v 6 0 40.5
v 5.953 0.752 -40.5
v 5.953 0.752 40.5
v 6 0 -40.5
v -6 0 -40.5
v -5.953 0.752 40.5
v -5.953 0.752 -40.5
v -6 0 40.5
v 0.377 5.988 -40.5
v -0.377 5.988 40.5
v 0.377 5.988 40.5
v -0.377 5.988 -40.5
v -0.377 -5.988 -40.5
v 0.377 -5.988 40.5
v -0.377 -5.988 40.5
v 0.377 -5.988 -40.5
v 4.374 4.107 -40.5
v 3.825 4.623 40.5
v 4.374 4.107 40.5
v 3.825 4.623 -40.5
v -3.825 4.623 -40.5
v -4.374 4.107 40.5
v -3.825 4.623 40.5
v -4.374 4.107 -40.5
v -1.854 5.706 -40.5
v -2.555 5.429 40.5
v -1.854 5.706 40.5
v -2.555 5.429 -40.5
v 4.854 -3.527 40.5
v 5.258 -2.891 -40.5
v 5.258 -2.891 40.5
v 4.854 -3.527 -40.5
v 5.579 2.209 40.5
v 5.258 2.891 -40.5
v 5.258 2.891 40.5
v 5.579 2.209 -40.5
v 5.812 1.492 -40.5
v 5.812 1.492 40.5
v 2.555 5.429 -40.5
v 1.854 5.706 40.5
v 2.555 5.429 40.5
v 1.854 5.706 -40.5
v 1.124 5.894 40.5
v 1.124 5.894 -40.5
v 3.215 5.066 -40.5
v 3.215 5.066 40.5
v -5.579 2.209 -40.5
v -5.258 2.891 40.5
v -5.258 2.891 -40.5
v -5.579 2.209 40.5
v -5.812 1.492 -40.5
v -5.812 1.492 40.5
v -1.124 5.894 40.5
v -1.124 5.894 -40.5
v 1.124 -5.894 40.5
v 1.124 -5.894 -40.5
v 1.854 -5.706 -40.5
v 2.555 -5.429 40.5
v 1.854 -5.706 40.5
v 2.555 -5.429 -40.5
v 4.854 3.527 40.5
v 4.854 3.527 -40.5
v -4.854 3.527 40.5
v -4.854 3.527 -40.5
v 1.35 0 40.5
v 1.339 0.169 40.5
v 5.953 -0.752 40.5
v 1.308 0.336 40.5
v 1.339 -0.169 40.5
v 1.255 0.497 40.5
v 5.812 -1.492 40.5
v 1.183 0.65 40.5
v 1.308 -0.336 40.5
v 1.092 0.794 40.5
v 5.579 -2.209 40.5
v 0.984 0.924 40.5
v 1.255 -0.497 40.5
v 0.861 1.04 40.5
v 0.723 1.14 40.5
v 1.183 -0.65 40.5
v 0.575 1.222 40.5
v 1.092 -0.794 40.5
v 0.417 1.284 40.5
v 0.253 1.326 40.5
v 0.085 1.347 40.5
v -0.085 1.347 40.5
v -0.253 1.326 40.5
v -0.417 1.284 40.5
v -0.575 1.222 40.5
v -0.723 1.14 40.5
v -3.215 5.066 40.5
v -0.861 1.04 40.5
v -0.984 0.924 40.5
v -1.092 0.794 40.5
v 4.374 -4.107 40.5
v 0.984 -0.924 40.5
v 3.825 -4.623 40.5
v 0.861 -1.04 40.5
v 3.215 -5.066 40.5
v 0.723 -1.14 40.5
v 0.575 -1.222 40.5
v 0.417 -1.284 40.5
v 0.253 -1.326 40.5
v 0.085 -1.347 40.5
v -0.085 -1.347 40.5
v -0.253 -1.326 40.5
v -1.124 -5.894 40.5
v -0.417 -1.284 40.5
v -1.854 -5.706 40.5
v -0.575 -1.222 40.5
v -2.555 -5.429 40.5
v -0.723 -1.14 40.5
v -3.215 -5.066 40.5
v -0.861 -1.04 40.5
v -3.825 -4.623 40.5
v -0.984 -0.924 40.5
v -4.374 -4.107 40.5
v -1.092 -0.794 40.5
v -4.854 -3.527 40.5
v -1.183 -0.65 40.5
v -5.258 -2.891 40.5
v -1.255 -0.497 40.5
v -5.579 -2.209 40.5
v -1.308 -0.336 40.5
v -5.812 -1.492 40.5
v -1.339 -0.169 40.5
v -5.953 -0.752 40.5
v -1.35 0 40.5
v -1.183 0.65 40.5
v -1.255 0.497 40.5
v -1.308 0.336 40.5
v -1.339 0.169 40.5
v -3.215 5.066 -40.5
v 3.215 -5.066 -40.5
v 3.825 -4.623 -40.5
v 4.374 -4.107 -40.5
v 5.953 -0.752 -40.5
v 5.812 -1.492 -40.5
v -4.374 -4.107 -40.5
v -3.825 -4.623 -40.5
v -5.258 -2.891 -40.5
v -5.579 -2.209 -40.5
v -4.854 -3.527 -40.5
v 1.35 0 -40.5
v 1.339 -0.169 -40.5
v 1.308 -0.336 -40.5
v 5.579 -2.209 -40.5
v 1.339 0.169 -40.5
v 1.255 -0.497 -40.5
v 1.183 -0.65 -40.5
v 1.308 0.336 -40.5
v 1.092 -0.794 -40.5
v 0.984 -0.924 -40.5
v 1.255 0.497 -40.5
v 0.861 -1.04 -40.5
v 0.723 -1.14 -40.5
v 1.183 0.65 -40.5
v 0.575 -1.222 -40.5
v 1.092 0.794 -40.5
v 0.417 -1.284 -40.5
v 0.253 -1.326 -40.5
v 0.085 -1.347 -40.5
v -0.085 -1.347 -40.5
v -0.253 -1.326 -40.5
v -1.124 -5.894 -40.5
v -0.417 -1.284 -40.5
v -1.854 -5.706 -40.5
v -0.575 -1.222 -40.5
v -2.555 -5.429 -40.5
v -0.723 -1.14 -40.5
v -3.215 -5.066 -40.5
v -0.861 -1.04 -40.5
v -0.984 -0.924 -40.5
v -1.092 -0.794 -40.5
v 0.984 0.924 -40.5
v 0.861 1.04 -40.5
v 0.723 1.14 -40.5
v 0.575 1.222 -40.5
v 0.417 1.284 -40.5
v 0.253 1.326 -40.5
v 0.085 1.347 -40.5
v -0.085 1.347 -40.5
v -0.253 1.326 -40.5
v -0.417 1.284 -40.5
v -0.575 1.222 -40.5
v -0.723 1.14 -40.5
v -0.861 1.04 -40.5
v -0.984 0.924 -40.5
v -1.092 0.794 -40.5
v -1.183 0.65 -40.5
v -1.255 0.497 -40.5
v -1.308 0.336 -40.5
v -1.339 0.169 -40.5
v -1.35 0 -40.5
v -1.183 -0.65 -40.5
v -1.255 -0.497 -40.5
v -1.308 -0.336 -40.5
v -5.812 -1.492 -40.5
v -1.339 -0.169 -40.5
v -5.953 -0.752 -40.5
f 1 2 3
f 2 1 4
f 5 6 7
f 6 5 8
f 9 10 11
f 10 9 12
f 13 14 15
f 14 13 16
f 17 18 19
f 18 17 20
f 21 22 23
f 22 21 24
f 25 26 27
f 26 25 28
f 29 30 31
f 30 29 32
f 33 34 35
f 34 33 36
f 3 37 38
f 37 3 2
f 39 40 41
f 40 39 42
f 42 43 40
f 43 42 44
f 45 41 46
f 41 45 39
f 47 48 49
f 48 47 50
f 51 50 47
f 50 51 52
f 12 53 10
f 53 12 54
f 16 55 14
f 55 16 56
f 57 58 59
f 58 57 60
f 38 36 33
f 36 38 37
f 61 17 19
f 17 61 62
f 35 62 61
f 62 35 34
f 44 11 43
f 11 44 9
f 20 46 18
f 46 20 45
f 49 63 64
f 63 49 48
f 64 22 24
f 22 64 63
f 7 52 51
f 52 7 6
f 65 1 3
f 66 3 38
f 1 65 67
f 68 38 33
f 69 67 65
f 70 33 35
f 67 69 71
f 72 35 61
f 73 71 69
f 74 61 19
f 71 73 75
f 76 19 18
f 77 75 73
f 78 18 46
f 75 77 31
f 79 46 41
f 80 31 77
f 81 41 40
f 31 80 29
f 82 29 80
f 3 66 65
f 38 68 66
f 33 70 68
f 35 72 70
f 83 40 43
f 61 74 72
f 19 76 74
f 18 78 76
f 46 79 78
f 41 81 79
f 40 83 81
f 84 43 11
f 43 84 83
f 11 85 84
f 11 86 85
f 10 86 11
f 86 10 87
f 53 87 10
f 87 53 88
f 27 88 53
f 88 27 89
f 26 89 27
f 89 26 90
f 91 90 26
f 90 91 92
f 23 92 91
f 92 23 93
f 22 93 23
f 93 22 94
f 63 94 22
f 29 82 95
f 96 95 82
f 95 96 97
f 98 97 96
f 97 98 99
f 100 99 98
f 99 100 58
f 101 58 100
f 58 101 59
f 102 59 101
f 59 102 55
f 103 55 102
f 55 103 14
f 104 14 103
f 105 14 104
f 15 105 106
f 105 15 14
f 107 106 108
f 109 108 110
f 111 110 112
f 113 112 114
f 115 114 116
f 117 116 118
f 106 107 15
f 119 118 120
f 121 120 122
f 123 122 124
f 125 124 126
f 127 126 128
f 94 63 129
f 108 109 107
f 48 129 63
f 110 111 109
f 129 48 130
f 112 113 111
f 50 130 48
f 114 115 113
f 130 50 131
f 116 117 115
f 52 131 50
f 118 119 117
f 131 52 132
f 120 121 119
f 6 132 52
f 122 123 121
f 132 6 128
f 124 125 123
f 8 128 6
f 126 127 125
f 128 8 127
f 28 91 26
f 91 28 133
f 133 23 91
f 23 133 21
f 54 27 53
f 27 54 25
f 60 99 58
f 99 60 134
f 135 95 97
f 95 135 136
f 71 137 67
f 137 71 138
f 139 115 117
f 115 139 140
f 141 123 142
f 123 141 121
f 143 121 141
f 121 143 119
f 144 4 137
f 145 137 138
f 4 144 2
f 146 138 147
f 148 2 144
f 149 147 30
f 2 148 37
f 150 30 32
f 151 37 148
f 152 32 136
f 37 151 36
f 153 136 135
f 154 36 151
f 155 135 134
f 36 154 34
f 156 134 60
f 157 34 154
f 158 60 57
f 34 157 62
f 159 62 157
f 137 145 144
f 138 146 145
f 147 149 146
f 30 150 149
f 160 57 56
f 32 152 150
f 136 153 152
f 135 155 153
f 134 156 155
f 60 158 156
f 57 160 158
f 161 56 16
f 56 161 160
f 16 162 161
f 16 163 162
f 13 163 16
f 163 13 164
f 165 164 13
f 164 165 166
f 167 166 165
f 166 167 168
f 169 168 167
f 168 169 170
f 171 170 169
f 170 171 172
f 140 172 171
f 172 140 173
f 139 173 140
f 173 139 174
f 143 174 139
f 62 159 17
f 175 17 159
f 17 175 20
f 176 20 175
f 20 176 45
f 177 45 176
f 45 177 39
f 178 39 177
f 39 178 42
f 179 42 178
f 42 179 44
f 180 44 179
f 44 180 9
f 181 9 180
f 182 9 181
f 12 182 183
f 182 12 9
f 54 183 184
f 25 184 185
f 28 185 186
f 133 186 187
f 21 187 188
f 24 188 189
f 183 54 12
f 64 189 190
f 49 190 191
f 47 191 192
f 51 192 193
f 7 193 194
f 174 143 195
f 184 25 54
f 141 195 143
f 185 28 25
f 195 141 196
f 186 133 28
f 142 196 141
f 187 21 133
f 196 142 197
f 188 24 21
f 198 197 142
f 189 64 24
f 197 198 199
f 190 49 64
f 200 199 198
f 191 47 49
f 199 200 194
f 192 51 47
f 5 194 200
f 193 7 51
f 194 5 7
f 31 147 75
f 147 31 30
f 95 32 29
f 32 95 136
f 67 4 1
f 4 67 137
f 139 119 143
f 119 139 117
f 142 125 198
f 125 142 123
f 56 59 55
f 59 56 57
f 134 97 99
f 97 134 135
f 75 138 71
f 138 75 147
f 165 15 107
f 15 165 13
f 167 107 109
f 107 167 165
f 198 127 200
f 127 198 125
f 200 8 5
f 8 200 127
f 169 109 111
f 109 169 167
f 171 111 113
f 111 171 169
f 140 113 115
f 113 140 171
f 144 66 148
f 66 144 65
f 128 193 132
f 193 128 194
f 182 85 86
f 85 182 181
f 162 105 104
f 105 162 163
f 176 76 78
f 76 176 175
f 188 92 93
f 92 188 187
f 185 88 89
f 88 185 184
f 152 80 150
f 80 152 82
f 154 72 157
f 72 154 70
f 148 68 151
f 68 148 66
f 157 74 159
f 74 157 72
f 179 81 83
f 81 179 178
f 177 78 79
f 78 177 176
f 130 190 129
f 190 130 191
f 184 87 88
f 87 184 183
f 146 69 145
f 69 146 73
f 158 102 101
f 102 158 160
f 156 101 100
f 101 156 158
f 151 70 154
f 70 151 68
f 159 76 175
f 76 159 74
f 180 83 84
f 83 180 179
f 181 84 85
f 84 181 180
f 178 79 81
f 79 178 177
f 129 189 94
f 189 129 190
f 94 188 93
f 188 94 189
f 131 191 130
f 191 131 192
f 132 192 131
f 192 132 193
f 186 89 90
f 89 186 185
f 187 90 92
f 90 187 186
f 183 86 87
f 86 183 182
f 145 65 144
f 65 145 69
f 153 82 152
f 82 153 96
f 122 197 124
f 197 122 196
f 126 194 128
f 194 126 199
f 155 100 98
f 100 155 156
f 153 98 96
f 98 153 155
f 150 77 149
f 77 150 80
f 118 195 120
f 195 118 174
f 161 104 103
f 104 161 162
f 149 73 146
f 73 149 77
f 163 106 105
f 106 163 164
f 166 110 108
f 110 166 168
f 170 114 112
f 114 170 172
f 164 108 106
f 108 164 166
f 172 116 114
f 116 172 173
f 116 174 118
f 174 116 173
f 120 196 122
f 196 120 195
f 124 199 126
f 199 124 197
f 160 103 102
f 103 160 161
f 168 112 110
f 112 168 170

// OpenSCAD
$fn = 50;


difference() {
	union() {
		translate(v = [0, 0, -40.5000000000]) {
			cylinder(h = 81, r = 6.0000000000);
		}
	}
	union() {
		translate(v = [0, 0, -100.0000000000]) {
			cylinder(h = 200, r = 1.3500000000);
		}
	}
}
